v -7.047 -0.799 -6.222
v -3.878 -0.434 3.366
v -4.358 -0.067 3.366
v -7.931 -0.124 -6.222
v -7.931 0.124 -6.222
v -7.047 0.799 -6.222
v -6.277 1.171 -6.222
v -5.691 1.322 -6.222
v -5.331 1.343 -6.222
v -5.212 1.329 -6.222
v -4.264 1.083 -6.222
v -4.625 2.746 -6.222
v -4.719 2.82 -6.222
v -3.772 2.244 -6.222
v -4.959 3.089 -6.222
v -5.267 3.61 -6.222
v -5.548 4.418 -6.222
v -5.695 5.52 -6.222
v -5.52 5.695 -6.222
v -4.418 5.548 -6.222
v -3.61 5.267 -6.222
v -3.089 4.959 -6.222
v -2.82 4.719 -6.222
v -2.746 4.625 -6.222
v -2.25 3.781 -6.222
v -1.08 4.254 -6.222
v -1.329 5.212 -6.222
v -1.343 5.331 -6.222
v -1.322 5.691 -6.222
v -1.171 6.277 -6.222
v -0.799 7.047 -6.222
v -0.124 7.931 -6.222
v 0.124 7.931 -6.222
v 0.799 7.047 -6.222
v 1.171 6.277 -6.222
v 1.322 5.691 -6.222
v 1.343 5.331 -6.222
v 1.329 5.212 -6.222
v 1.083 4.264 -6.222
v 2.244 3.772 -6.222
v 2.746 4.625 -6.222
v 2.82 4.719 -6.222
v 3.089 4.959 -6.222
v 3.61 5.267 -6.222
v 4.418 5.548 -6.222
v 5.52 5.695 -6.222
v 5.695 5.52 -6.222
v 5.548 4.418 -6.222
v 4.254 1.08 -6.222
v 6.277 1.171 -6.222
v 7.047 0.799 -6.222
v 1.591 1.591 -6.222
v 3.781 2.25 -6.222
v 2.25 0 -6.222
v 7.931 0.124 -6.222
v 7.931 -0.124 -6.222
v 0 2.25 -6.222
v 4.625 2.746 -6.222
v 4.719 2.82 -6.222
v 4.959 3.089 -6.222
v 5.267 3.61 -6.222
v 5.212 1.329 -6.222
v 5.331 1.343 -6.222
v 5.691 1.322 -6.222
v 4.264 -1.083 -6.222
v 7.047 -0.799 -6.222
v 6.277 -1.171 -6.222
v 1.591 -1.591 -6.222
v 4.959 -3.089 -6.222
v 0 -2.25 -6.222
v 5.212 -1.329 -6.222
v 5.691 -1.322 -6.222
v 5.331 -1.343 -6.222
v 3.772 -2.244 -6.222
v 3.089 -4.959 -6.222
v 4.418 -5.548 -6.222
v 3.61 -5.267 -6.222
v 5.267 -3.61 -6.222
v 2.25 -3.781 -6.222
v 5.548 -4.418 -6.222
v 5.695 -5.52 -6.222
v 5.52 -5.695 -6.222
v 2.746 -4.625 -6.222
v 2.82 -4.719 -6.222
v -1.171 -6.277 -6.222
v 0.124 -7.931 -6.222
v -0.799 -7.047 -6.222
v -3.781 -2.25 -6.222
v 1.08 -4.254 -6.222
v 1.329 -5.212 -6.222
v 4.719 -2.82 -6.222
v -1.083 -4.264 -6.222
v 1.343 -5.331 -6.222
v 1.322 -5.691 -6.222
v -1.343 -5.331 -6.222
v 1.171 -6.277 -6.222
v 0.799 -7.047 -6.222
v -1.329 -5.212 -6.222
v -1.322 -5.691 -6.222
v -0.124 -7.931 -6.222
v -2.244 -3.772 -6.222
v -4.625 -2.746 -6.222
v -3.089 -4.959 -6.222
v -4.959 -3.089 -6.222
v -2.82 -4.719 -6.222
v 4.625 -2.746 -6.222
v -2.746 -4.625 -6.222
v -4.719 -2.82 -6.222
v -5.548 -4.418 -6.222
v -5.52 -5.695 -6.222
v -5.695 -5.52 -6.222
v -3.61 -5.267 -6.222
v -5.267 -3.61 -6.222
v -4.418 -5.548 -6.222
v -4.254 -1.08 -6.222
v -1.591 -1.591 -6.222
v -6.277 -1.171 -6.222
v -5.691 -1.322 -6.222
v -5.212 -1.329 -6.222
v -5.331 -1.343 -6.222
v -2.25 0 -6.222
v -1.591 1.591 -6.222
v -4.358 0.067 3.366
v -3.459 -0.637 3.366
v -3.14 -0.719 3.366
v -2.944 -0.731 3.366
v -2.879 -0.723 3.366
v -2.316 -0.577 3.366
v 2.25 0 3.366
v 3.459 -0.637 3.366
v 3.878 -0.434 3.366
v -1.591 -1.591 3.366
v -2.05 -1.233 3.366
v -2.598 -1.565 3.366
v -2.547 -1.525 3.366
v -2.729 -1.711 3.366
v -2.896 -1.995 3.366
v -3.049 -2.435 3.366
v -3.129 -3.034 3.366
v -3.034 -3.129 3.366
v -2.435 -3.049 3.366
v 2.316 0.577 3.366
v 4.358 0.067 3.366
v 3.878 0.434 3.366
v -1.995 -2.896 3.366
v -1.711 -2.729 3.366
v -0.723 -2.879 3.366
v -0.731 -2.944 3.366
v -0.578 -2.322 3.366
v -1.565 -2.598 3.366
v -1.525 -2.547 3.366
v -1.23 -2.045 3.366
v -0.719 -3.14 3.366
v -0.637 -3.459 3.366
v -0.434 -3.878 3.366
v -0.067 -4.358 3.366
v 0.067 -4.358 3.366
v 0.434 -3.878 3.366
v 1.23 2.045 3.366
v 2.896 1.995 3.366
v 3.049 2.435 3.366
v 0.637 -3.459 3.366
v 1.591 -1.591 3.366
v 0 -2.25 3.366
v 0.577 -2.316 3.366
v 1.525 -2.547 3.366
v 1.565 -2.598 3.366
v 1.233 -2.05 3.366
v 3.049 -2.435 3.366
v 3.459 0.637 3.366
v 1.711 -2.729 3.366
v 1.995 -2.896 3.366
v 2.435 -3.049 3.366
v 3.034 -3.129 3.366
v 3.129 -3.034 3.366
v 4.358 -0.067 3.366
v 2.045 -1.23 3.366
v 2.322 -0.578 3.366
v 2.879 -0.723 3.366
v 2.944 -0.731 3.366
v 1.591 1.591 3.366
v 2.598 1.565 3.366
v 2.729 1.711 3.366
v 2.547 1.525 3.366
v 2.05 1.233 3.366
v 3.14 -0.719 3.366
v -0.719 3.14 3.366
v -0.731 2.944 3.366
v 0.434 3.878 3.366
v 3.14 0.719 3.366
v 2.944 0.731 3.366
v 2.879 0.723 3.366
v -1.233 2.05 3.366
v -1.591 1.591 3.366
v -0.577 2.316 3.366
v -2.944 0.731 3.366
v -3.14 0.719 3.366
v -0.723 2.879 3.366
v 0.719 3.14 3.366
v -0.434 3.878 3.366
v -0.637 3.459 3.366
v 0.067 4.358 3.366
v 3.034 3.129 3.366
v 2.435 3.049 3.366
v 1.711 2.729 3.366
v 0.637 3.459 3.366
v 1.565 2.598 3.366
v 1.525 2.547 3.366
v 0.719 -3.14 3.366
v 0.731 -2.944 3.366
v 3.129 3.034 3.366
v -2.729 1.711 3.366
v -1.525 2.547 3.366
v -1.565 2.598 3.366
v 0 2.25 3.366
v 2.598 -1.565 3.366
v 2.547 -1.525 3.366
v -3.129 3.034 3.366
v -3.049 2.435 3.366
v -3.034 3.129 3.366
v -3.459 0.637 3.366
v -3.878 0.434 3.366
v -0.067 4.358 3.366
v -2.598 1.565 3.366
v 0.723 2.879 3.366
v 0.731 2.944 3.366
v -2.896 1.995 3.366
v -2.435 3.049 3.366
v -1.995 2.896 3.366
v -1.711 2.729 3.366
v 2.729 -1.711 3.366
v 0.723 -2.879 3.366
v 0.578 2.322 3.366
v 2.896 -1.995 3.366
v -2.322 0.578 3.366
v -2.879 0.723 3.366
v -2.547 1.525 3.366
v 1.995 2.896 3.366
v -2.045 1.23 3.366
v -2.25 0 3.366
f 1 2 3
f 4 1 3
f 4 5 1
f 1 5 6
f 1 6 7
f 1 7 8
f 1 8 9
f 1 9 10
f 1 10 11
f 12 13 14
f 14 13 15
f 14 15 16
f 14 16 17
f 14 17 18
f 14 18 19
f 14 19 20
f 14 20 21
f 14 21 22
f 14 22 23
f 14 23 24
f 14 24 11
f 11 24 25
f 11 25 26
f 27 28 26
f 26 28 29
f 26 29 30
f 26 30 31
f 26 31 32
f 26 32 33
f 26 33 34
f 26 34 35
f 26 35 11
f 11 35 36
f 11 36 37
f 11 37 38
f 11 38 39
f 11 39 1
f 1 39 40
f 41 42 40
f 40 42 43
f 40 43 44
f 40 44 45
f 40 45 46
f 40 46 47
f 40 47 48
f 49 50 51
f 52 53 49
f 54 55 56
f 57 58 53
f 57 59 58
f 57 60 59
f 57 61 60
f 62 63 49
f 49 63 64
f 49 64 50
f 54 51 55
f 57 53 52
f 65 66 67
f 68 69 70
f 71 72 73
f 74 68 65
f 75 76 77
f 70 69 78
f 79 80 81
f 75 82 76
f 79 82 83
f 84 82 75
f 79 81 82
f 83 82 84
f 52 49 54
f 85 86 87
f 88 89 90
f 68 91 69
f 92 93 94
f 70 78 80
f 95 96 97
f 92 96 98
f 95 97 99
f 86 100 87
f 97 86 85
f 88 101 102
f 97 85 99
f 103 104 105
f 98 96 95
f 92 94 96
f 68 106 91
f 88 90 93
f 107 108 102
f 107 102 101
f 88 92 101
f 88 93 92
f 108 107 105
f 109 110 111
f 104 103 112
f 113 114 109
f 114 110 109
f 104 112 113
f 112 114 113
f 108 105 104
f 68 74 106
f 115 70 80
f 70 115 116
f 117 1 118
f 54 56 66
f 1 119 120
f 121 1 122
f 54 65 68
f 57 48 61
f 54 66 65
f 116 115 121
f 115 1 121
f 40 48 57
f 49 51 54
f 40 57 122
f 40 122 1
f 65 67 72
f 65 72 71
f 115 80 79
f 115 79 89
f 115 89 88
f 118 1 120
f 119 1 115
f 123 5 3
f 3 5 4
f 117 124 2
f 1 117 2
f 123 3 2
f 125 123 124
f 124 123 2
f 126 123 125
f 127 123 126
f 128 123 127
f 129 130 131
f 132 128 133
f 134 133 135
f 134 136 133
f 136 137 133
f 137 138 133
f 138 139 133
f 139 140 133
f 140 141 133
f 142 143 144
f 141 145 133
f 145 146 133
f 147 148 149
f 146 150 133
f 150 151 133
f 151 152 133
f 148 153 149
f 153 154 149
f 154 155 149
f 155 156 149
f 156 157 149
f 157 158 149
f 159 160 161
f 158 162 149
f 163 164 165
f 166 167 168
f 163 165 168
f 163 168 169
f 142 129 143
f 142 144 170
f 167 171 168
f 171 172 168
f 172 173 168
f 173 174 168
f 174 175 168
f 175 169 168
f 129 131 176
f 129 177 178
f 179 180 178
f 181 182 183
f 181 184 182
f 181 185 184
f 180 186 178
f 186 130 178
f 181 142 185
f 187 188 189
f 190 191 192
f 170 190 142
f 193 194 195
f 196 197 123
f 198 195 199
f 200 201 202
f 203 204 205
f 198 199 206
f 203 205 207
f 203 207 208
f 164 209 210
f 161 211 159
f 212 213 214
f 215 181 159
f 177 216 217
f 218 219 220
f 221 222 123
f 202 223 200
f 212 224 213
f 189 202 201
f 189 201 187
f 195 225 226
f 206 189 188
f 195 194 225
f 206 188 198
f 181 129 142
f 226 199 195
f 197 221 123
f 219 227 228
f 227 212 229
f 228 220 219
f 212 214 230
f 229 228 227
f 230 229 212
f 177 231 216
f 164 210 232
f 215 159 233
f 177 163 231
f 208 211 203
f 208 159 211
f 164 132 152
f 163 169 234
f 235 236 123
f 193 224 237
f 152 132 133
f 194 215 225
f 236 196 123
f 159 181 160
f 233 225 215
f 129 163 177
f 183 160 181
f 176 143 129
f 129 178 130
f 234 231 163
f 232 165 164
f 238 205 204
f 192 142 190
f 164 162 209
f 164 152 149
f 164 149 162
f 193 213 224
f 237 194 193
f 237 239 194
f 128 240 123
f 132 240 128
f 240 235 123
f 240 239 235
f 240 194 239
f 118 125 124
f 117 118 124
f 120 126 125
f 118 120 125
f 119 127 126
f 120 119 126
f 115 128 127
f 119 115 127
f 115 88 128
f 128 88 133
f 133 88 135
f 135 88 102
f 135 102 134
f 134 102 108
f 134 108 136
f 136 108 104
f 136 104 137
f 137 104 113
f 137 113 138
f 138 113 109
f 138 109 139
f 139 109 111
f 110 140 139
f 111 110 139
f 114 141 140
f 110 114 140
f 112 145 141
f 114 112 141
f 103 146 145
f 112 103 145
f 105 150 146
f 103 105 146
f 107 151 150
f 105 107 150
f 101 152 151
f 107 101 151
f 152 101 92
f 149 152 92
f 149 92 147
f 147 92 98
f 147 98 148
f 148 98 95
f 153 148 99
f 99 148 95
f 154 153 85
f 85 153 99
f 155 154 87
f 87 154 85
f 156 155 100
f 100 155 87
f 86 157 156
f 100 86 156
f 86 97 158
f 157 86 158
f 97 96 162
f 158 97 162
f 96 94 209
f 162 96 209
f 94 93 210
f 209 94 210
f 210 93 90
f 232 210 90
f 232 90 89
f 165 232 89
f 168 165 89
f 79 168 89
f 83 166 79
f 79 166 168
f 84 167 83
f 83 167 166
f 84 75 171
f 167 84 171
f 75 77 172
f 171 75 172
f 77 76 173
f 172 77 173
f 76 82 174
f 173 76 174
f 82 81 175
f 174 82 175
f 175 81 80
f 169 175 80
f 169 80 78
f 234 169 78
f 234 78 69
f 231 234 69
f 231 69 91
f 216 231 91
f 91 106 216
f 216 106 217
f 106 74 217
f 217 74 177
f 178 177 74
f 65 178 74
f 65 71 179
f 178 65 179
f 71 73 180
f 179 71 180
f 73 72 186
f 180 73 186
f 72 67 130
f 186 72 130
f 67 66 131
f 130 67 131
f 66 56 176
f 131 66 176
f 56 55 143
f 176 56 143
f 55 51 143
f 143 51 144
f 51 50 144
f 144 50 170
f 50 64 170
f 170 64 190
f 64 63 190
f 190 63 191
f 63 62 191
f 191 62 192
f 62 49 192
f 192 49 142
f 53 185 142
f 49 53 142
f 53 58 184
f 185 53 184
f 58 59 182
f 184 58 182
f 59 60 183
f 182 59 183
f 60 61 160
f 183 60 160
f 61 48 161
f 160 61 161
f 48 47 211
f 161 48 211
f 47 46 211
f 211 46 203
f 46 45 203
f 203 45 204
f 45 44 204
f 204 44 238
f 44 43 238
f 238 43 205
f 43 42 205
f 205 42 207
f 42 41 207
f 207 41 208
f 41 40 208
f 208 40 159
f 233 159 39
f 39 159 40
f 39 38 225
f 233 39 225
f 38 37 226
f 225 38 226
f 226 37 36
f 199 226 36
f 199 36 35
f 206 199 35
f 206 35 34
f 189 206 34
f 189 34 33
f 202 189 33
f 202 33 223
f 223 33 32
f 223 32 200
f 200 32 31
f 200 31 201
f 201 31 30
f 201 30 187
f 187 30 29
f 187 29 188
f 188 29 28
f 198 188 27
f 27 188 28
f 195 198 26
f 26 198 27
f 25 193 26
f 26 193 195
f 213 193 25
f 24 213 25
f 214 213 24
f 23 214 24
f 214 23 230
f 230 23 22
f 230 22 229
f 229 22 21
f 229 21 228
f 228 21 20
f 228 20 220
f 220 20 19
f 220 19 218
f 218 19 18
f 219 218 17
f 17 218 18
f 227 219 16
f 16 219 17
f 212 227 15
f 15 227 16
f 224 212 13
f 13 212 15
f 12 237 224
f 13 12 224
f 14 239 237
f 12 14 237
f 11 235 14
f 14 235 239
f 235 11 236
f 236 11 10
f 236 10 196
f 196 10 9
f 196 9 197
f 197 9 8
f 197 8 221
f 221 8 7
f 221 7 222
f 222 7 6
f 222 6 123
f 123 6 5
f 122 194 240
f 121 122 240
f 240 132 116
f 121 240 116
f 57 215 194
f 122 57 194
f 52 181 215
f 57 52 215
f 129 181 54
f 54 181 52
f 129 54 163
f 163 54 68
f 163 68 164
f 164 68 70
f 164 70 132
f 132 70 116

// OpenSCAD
use<MCAD/involute_gears.scad>;


	gear1_teeth = 27;
	gear2_teeth = 8;
	axis_angle = 90;
	outside_circular_pitch=280;

	outside_pitch_radius1 = gear1_teeth * outside_circular_pitch / 360;
	outside_pitch_radius2 = gear2_teeth * outside_circular_pitch / 360;
	pitch_apex1=outside_pitch_radius2 * sin (axis_angle) +
		(outside_pitch_radius2 * cos (axis_angle) + outside_pitch_radius1) / tan (axis_angle);
	cone_distance = sqrt (pow (pitch_apex1, 2) + pow (outside_pitch_radius1, 2));
	pitch_apex2 = sqrt (pow (cone_distance, 2) - pow (outside_pitch_radius2, 2));
	echo ("cone_distance", cone_distance);
	pitch_angle1 = asin (outside_pitch_radius1 / cone_distance);
	pitch_angle2 = asin (outside_pitch_radius2 / cone_distance);
	echo ("pitch_angle1, pitch_angle2", pitch_angle1, pitch_angle2);
	echo ("pitch_angle1 + pitch_angle2", pitch_angle1 + pitch_angle2);

	rotate([0,0,0])
	translate ([0,0,0])
	{
		translate([0,0,-pitch_apex1])
		bevel_gear (
			number_of_teeth=gear2_teeth,
			cone_distance=cone_distance,
			pressure_angle=30,
			outside_circular_pitch=outside_circular_pitch,
			face_width=10,
			gear_thickness=0,
			bore_diameter=4.5
			);
	}
